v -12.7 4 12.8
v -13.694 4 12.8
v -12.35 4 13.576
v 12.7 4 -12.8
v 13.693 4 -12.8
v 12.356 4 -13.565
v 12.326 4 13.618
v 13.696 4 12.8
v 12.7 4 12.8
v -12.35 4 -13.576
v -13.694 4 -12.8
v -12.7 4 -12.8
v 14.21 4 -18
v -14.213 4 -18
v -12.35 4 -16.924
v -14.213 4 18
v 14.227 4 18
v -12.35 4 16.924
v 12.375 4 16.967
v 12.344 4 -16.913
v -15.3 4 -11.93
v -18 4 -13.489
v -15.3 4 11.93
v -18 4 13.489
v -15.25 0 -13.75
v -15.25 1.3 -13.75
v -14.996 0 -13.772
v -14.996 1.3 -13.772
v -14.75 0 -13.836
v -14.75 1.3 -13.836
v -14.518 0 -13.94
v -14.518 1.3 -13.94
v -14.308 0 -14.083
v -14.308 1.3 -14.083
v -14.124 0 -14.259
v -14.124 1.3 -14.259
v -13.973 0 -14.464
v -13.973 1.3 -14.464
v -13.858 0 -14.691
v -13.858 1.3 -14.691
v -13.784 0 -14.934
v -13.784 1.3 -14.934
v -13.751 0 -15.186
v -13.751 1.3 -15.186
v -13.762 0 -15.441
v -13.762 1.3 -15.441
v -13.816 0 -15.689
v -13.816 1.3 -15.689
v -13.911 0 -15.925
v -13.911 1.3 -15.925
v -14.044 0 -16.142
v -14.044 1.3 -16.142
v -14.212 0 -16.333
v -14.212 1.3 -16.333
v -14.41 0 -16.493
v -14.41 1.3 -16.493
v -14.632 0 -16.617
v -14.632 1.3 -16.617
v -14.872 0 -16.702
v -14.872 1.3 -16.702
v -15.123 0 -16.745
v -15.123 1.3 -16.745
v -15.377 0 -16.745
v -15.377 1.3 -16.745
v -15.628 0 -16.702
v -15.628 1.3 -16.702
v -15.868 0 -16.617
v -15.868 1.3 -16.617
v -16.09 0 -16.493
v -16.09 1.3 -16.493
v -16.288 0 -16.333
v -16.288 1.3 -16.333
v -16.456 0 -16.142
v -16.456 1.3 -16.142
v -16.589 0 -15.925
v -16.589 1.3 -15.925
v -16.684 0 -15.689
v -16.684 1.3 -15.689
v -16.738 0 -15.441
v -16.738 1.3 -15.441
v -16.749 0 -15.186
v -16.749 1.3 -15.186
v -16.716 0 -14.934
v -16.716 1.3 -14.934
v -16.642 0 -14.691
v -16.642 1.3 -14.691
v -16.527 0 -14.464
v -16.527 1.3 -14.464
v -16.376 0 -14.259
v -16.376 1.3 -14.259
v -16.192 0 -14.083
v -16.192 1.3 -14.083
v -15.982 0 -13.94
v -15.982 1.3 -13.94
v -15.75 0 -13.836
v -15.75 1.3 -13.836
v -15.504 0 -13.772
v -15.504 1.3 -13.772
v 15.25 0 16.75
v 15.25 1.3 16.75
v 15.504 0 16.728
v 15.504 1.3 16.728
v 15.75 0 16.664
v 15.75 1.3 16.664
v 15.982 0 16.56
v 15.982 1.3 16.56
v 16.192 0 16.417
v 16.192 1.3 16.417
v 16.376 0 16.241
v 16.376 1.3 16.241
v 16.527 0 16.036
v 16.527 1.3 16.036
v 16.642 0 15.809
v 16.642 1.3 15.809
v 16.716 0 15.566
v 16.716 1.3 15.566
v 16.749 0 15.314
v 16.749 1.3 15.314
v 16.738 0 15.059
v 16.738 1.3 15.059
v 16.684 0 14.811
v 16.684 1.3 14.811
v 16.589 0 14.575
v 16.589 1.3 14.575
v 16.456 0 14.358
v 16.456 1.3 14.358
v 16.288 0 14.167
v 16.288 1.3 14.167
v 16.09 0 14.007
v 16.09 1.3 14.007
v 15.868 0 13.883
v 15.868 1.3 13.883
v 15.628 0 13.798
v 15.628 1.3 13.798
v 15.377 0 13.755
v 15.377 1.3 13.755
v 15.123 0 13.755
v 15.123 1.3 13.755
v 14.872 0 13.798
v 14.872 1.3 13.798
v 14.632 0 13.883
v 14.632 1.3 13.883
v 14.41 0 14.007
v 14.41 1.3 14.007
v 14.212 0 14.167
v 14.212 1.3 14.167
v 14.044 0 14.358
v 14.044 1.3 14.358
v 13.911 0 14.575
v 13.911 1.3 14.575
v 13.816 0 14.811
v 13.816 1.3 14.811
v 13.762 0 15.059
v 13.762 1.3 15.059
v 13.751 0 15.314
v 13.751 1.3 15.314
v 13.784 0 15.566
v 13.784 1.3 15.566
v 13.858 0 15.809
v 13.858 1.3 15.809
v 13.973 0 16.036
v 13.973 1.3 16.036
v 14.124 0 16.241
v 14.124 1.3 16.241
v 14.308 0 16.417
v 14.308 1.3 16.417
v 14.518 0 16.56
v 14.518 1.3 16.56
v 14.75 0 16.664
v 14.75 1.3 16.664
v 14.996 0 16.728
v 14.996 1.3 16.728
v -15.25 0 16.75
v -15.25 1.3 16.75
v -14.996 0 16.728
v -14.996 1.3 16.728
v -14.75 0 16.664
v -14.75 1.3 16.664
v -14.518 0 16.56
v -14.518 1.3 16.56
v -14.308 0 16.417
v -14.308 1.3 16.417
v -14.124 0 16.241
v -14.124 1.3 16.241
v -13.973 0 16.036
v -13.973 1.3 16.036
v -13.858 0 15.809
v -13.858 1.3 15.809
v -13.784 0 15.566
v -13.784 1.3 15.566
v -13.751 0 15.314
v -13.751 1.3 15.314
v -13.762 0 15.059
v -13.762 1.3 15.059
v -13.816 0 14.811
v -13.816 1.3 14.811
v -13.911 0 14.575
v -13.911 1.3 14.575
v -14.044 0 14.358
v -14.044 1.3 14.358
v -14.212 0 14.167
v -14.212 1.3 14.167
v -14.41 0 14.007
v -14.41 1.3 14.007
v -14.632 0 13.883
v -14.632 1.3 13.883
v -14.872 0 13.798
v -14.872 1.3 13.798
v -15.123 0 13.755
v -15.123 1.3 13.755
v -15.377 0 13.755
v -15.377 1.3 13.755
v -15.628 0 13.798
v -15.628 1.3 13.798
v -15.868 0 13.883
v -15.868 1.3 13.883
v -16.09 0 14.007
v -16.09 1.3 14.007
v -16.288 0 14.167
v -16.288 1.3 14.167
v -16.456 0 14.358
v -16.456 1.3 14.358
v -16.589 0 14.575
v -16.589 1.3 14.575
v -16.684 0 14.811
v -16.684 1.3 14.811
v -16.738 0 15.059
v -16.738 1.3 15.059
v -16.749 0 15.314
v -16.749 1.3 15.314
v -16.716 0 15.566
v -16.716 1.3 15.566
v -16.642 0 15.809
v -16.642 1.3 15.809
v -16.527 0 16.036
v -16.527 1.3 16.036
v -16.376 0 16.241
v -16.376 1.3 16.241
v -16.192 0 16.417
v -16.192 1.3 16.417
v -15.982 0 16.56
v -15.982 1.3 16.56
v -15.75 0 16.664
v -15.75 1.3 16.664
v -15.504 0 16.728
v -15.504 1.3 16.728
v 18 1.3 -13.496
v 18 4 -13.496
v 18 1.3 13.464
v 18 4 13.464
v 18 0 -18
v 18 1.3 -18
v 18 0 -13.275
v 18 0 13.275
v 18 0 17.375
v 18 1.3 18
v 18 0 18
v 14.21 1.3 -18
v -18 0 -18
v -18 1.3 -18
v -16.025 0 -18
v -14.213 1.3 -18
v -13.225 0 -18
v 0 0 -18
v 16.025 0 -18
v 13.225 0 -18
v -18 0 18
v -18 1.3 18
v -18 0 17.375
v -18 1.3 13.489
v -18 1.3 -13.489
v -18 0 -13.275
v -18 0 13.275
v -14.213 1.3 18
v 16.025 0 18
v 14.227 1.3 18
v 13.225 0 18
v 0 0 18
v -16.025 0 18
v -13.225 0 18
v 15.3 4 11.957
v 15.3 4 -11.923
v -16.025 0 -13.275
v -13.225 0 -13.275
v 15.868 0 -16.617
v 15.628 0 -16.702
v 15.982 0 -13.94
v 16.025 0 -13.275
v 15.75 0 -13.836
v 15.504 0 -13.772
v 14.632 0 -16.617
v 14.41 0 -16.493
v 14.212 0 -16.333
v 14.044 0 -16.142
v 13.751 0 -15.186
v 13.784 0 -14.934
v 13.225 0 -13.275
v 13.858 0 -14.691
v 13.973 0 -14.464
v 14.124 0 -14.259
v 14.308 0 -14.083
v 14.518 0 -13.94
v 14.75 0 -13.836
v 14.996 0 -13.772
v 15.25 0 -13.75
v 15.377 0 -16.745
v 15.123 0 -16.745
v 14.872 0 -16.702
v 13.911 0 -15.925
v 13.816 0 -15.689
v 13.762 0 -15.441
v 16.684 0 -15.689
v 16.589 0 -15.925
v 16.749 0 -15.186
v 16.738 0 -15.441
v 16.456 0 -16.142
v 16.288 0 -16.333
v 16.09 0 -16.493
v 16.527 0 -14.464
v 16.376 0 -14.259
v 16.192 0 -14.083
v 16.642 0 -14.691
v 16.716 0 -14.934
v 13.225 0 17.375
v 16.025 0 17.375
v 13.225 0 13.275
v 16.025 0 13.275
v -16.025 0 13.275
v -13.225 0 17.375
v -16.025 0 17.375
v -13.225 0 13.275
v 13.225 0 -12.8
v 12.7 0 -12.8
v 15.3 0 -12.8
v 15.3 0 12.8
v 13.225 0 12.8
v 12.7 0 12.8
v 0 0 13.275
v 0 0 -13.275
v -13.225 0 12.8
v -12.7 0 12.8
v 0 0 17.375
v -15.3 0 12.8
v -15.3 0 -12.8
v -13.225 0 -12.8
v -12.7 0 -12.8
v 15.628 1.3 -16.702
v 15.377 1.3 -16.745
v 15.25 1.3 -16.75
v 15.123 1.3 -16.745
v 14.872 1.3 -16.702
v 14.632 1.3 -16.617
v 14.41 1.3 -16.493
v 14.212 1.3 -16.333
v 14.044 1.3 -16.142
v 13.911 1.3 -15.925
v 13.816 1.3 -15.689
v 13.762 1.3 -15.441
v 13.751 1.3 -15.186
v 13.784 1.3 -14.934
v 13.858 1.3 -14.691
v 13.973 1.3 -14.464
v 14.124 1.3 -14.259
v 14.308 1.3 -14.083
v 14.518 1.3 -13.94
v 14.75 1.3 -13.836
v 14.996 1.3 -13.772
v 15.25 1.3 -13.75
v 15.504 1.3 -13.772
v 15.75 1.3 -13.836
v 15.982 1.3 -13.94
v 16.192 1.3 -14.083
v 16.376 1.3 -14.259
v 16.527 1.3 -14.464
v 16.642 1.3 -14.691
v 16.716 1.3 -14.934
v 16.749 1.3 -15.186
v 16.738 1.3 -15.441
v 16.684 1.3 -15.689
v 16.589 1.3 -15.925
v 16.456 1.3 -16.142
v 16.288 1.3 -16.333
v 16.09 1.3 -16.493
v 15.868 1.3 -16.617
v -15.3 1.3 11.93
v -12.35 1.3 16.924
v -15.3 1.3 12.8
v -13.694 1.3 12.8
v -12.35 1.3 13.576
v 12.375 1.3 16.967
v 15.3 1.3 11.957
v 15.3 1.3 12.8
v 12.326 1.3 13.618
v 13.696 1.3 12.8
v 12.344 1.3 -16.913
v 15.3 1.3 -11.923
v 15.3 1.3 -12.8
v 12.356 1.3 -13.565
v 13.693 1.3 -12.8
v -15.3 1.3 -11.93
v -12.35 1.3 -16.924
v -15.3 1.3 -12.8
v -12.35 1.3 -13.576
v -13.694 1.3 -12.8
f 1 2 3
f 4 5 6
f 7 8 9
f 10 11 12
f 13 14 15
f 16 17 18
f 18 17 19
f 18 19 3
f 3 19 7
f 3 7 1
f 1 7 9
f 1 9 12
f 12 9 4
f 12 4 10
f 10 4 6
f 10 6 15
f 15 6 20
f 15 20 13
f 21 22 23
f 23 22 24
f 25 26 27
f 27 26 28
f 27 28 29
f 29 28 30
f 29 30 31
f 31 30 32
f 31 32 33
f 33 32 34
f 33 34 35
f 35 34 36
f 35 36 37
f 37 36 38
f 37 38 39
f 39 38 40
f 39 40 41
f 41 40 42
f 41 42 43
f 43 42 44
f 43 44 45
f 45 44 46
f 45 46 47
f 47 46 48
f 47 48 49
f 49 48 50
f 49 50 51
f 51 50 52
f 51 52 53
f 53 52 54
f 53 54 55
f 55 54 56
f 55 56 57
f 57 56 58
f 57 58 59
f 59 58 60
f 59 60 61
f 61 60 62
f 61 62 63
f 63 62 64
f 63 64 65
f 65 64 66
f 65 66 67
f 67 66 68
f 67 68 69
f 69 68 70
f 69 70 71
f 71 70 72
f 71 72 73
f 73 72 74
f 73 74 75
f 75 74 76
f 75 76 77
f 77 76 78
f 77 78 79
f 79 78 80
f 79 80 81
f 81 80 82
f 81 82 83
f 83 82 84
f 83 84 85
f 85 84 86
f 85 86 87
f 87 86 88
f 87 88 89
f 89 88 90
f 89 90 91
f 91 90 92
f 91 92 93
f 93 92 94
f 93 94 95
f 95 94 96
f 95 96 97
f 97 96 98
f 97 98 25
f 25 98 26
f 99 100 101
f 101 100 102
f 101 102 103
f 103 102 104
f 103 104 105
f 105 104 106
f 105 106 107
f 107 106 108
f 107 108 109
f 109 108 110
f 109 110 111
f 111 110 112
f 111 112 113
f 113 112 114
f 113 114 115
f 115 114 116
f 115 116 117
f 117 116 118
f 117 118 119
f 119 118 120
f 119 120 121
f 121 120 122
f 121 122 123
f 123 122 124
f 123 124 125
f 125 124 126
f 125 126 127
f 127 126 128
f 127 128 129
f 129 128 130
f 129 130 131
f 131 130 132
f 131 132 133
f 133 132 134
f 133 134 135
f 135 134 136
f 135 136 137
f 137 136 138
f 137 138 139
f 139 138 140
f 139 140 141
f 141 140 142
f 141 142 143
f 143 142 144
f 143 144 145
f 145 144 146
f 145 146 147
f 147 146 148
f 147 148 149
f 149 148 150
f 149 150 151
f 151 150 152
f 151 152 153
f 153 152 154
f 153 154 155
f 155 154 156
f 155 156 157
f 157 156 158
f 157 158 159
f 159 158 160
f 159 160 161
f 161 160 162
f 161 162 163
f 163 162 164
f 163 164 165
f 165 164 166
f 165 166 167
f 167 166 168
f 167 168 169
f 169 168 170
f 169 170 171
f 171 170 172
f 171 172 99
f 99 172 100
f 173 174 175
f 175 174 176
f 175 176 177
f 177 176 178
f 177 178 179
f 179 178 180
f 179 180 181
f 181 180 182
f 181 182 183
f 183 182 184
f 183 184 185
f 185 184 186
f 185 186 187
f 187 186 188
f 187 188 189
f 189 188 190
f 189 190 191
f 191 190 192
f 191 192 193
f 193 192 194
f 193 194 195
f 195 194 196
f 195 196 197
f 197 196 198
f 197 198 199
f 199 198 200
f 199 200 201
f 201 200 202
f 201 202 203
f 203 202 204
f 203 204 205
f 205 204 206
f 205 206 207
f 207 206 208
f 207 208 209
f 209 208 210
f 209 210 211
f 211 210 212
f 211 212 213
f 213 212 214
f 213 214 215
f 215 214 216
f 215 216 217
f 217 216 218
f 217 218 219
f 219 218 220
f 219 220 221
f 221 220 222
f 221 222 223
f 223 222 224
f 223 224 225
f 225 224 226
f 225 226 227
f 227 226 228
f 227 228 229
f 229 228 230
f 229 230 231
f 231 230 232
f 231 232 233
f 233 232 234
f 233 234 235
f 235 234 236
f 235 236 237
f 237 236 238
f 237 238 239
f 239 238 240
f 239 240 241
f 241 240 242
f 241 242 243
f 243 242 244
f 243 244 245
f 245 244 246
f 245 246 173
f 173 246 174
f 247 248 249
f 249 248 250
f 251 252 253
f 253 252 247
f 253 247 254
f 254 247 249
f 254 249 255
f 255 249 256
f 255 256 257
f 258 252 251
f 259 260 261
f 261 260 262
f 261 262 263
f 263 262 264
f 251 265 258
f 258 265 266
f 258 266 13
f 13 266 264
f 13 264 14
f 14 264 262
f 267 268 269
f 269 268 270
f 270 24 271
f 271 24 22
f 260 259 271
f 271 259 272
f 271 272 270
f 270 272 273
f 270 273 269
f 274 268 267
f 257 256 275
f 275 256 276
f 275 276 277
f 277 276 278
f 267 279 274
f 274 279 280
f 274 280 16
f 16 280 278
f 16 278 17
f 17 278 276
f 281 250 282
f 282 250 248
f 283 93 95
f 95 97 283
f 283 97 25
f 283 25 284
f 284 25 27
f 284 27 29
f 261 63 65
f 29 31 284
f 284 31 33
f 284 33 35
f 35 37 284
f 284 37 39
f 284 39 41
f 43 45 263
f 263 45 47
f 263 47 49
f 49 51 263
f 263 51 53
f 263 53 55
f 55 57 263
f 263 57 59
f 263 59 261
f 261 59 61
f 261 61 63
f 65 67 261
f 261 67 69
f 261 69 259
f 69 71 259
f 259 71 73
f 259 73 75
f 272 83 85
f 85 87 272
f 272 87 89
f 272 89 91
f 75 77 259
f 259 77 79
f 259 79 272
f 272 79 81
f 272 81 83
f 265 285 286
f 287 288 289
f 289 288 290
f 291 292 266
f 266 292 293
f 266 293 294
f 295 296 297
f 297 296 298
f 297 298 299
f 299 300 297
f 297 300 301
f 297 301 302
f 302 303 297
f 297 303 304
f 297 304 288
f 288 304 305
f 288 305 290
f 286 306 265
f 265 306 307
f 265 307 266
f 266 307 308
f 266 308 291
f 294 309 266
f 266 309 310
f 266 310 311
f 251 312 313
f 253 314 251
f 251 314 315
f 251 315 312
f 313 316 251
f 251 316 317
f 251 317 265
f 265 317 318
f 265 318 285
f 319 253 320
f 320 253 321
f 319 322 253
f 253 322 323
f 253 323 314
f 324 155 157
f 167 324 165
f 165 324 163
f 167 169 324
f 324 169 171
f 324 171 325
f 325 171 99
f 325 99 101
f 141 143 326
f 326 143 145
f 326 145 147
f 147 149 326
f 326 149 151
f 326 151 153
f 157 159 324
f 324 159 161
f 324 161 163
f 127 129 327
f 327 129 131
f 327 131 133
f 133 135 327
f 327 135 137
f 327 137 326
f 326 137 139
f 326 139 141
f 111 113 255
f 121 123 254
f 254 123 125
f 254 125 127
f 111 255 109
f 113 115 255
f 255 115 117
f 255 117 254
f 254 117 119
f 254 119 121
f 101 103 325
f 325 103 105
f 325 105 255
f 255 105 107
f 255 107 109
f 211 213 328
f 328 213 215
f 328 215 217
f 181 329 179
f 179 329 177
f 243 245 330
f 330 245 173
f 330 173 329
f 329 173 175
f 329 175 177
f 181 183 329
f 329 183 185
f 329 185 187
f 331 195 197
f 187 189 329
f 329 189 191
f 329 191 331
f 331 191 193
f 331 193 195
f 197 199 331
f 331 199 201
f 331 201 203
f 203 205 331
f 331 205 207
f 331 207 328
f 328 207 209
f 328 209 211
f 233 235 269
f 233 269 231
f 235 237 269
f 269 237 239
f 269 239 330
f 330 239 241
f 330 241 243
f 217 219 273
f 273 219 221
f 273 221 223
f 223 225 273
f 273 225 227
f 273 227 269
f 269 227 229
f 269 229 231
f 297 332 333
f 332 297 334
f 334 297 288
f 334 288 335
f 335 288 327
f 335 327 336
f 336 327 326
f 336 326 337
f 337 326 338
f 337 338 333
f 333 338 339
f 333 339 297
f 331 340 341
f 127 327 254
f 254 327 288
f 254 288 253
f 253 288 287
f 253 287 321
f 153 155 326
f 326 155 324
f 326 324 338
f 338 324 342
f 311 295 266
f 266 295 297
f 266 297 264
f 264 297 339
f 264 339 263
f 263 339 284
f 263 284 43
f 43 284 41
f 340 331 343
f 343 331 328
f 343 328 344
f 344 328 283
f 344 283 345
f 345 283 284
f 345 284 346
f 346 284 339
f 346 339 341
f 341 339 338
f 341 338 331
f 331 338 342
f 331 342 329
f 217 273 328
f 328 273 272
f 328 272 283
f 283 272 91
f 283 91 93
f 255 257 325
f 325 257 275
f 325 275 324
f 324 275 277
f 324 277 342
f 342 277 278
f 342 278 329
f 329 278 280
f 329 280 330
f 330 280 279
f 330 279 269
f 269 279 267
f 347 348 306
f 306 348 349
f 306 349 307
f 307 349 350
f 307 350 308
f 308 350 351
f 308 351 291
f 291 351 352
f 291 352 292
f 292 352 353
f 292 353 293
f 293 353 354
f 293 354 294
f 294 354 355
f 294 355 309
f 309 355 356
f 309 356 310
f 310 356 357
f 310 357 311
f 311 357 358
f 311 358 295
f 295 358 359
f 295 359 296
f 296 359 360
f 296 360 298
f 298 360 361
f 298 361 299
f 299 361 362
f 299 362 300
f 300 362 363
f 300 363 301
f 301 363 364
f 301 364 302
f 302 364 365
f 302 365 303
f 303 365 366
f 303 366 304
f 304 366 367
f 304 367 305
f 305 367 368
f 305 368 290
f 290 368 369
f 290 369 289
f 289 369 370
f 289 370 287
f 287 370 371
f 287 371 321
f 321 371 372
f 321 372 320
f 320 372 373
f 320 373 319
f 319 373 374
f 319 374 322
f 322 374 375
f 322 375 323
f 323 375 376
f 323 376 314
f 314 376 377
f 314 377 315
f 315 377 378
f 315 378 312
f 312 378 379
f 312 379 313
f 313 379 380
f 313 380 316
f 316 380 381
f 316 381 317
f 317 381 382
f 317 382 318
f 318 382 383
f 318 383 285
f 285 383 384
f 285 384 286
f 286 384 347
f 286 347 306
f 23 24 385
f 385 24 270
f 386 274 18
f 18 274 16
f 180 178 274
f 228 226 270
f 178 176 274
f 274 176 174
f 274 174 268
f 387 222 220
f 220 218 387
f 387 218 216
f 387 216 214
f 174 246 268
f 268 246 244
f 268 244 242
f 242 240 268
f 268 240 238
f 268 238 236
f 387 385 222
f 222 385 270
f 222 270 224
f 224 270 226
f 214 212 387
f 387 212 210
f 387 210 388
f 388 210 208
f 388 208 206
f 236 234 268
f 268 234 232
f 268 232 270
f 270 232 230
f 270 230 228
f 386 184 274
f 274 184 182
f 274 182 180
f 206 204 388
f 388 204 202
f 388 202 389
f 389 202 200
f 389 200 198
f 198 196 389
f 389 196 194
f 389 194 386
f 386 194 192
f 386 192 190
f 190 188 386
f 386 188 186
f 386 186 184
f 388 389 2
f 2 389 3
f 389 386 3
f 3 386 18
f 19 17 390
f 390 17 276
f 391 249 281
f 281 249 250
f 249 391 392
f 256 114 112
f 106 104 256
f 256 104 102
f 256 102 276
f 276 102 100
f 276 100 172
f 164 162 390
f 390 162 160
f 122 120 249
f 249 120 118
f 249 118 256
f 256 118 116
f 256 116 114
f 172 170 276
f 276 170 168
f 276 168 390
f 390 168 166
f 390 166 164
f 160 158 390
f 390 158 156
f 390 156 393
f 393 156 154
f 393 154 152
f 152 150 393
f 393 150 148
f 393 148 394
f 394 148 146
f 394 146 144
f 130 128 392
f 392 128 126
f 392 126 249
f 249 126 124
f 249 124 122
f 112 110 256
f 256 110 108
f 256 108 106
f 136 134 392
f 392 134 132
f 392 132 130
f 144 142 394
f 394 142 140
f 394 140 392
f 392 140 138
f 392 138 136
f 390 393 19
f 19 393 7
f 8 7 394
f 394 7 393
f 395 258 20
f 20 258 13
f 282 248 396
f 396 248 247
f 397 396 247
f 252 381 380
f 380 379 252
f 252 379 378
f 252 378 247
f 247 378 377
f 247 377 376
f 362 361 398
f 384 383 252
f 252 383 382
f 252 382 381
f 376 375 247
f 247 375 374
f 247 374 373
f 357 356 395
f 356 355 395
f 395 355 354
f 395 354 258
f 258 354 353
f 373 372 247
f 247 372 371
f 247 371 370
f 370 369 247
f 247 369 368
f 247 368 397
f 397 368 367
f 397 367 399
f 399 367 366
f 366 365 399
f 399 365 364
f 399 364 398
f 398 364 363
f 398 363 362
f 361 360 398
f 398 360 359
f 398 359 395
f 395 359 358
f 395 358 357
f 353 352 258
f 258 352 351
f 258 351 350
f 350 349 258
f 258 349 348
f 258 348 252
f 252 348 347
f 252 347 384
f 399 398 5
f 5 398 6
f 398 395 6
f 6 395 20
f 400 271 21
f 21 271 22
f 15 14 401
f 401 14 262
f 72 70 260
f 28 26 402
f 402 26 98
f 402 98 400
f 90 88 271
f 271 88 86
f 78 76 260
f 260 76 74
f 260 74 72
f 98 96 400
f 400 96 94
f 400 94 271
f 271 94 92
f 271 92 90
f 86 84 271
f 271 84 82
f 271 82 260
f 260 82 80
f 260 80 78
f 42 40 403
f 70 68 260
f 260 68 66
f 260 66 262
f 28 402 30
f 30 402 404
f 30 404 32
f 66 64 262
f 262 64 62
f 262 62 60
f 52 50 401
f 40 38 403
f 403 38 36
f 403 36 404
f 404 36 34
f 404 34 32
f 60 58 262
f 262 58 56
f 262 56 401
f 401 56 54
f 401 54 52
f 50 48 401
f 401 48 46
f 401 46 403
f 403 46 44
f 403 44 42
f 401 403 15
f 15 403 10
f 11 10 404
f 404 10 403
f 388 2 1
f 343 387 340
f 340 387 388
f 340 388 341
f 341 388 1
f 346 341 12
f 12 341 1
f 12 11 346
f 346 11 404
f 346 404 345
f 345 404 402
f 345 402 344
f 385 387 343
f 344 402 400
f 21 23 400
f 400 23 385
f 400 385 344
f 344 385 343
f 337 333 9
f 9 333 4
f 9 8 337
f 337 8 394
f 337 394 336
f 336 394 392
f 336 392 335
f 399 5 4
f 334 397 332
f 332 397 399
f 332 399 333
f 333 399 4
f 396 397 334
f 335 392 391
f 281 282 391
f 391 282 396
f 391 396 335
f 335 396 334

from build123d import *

# Parameters (mm, degrees)
SKETCH1_W           = 36
SKETCH1_H           = 36
BOSS_EXTRUDE1_DEPTH = 4
SKETCH2_R           = 1.5
CUT_EXTRUDE1_DEPTH  = 26.768197453
CUT_EXTRUDE3_DEPTH  = 2.7
CUT_EXTRUDE4_REACH  = 27.768
SKETCH4_W           = 2.6
SKETCH4_H           = 25.6


with BuildPart() as part:
    # Sketch1 → Boss-Extrude1 (new body)
    with BuildSketch(Plane(origin=(0, 0, 0), x_dir=(1, 0, 0), z_dir=(0, 1, 0))):
        Rectangle(SKETCH1_W, SKETCH1_H)
    extrude(amount=BOSS_EXTRUDE1_DEPTH)

    # Sketch2 → Cut-Extrude1 (cut, through all)
    with BuildSketch(Plane(origin=(0, 4, 0), x_dir=(1, 0, 0), z_dir=(0, 1, 0))):
        with Locations(Location((-15.25, 15.25, 0), (0, 0, 270))):
            Circle(SKETCH2_R)
        with Locations(Location((15.25, 15.25, 0), (0, 0, 270))):
            Circle(SKETCH2_R)
        with Locations(Location((15.25, -15.25, 0), (0, 0, 270))):
            Circle(SKETCH2_R)
        with Locations(Location((-15.25, -15.25, 0), (0, 0, 270))):
            Circle(SKETCH2_R)
    extrude(amount=-CUT_EXTRUDE1_DEPTH, mode=Mode.SUBTRACT)

    # Sketch3 → Cut-Extrude3 (cut)
    with BuildSketch(Plane(origin=(0, 4, 0), x_dir=(1, 0, 0), z_dir=(0, 1, 0))):
        Polygon((-15.25, 11.901368439), (-12.35, 13.575684219), (-12.35, 16.924315781), (-15.25, 18.598631561), (-18.15, 18.598631561), (-18.15, 16.924315781), (-18.15, 13.575684219), align=None)
        Polygon((15.26270162, 11.901392528), (18.156329948, 13.58669619), (18.143628328, 16.935303662), (18.143628328, 18.598607472), (15.23729838, 18.598607472), (12.343670052, 16.91330381), (12.356371672, 13.564696338), align=None)
        Polygon((18.17418246, -16.881713907), (18.125196925, -13.533440657), (15.201014465, -11.901726751), (12.32581754, -13.618286093), (12.374803075, -16.966559343), (15.298985535, -18.598273249), (18.17418246, -18.598273249), align=None)
        Polygon((-15.25, -18.598631561), (-12.35, -16.924315781), (-12.35, -13.575684219), (-15.25, -11.901368439), (-18.15, -13.575684219), (-18.15, -16.924315781), (-18.15, -18.598631561), align=None)
    extrude(amount=-CUT_EXTRUDE3_DEPTH, mode=Mode.SUBTRACT)

    # Sketch4 → Cut-Extrude4 (cut, up to next)
    with BuildSketch(Plane.XZ, mode=Mode.PRIVATE) as cut_extrude4_sk1:
        with Locations((-14, 0)):
            Rectangle(SKETCH4_W, SKETCH4_H)
    cut_extrude4_tool1 = extrude(cut_extrude4_sk1.sketch, amount=-CUT_EXTRUDE4_REACH, mode=Mode.PRIVATE) & part.part
    # Sketch4 → Cut-Extrude4 (cut, up to next)
    with BuildSketch(Plane.XZ, mode=Mode.PRIVATE) as cut_extrude4_sk2:
        with Locations((14, 0)):
            Rectangle(SKETCH4_W, SKETCH4_H)
    cut_extrude4_tool2 = extrude(cut_extrude4_sk2.sketch, amount=-CUT_EXTRUDE4_REACH, mode=Mode.PRIVATE) & part.part
    add(cut_extrude4_tool1.solids().sort_by_distance((-14, 0, 0))[0], mode=Mode.SUBTRACT)
    add(cut_extrude4_tool2.solids().sort_by_distance((14, 0, 0))[0], mode=Mode.SUBTRACT)


solid = part.part
